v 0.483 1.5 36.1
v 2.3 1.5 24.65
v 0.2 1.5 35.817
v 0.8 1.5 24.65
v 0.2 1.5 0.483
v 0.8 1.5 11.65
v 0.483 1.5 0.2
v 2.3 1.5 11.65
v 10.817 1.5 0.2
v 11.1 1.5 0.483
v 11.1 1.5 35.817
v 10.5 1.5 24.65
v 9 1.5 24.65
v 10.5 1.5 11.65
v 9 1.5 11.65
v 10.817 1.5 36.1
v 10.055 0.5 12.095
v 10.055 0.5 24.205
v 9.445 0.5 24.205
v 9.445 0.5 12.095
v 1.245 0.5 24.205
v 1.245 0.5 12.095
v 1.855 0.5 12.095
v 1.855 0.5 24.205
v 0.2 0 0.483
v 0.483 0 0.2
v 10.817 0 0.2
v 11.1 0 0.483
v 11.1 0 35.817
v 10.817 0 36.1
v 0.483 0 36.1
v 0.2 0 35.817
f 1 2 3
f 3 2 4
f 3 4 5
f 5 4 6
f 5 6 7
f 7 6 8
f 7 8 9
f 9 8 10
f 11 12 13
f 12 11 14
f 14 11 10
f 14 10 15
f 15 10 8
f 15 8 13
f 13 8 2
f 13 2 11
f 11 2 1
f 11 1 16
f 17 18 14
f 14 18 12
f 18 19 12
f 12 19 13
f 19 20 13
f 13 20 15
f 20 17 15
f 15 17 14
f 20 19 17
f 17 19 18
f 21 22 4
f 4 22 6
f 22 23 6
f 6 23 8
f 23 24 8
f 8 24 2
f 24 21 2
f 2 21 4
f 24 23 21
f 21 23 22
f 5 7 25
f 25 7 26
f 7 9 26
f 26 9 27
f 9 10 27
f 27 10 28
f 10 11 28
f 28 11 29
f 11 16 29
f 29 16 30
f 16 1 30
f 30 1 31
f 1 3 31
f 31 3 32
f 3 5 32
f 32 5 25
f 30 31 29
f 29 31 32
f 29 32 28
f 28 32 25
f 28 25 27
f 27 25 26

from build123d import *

# Parameters (mm, degrees)
SKETCH_1_W                    = 11.3
SKETCH_1_H                    = 36.3
EXTRUDE_1_DEPTH               = 1.5
CHAMFER_1_SIZE                = 0.4
SKETCH_2_W                    = 1.5
SKETCH_2_H                    = 13
CUT_EXTRUDE_1_DEPTH           = 1
CUT_EXTRUDE_1_DRAFT           = -24
CUT_EXTRUDE_1_PROFILE_2_DEPTH = 1
CUT_EXTRUDE_1_PROFILE_2_DRAFT = -24
CUT_EXTRUDE_2_DEPTH           = 10


with BuildPart() as part:
    # 草图1 → 凸台-拉伸1 (new body)
    with BuildSketch(Plane(origin=(0, 0, 0), x_dir=(1, 0, 0), z_dir=(0, 1, 0))):
        with Locations((5.65, -18.15)):
            Rectangle(SKETCH_1_W, SKETCH_1_H)
    extrude(amount=EXTRUDE_1_DEPTH)

    # 倒角1
    chamfer_1_edges = [part.edges().sort_by_distance(p)[0] for p in [
        (0, 0.75, 0),
        (11.3, 0.75, 0),
        (11.3, 0.75, 36.3),
        (0, 0.75, 36.3),
    ]]
    chamfer(chamfer_1_edges, length=CHAMFER_1_SIZE)


with BuildPart() as cut_extrude_1_tool:
    # 草图2 → 切除-拉伸1 (with draft: the straight prism first)
    with BuildSketch(Plane(origin=(0, 1.5, 0), x_dir=(1, 0, 0), z_dir=(0, 1, 0))):
        with Locations((1.55, -18.15)):
            Rectangle(SKETCH_2_W, SKETCH_2_H)
    extrude(amount=-CUT_EXTRUDE_1_DEPTH)
    # 切除-拉伸1: the draft: its side faces are tilted about the plane it starts from
    cut_extrude_1_sides = [cut_extrude_1_tool.faces().sort_by_distance(p)[0] for p in [
        (0.8, 1, 18.15),
        (1.55, 1, 24.65),
        (2.3, 1, 18.15),
        (1.55, 1, 11.65),
    ]]
    draft(cut_extrude_1_sides, Plane(origin=(0, 1.5, 0), x_dir=(1, 0, 0), z_dir=(0, 1, 0)), CUT_EXTRUDE_1_DRAFT)


with BuildPart() as part_1:
    add(part.part)

    # 切除-拉伸1: cut by cut_extrude_1_tool
    add(cut_extrude_1_tool.part, mode=Mode.SUBTRACT)


with BuildPart() as cut_extrude_1_profile_2_tool:
    # 草图2 → 切除-拉伸1 profile 2 (with draft: the straight prism first)
    with BuildSketch(Plane(origin=(0, 1.5, 0), x_dir=(1, 0, 0), z_dir=(0, 1, 0))):
        with Locations((9.75, -18.15)):
            Rectangle(SKETCH_2_W, SKETCH_2_H)
    extrude(amount=-CUT_EXTRUDE_1_PROFILE_2_DEPTH)
    # 切除-拉伸1 profile 2: the draft: its side faces are tilted about the plane it starts from
    cut_extrude_1_profile_2_sides = [cut_extrude_1_profile_2_tool.faces().sort_by_distance(p)[0] for p in [
        (9.75, 1, 11.65),
        (9, 1, 18.15),
        (9.75, 1, 24.65),
        (10.5, 1, 18.15),
    ]]
    draft(cut_extrude_1_profile_2_sides, Plane(origin=(0, 1.5, 0), x_dir=(1, 0, 0), z_dir=(0, 1, 0)), CUT_EXTRUDE_1_PROFILE_2_DRAFT)


with BuildPart() as part_2:
    add(part_1.part)

    # 切除-拉伸1 profile 2: cut by cut_extrude_1_profile_2_tool
    add(cut_extrude_1_profile_2_tool.part, mode=Mode.SUBTRACT)

    # 草图3 → 切除-拉伸2 (cut)
    with BuildSketch(Plane(origin=(0, 1.5, 0), x_dir=(1, 0, 0), z_dir=(0, 1, 0))):
        Polygon((0, -0.4), (0, -35.9), (0.4, -36.3), (10.9, -36.3), (11.3, -35.9), (11.3, -0.4), (10.9, 0), (0.4, 0), align=None)
        Polygon((0.2, -0.482842712), (0.2, -35.817157288), (0.482842712, -36.1), (10.817157288, -36.1), (11.1, -35.817157288), (11.1, -0.482842712), (10.817157288, -0.2), (0.482842712, -0.2), align=None, mode=Mode.SUBTRACT)
    extrude(amount=-CUT_EXTRUDE_2_DEPTH, mode=Mode.SUBTRACT)


solid = part_2.part
